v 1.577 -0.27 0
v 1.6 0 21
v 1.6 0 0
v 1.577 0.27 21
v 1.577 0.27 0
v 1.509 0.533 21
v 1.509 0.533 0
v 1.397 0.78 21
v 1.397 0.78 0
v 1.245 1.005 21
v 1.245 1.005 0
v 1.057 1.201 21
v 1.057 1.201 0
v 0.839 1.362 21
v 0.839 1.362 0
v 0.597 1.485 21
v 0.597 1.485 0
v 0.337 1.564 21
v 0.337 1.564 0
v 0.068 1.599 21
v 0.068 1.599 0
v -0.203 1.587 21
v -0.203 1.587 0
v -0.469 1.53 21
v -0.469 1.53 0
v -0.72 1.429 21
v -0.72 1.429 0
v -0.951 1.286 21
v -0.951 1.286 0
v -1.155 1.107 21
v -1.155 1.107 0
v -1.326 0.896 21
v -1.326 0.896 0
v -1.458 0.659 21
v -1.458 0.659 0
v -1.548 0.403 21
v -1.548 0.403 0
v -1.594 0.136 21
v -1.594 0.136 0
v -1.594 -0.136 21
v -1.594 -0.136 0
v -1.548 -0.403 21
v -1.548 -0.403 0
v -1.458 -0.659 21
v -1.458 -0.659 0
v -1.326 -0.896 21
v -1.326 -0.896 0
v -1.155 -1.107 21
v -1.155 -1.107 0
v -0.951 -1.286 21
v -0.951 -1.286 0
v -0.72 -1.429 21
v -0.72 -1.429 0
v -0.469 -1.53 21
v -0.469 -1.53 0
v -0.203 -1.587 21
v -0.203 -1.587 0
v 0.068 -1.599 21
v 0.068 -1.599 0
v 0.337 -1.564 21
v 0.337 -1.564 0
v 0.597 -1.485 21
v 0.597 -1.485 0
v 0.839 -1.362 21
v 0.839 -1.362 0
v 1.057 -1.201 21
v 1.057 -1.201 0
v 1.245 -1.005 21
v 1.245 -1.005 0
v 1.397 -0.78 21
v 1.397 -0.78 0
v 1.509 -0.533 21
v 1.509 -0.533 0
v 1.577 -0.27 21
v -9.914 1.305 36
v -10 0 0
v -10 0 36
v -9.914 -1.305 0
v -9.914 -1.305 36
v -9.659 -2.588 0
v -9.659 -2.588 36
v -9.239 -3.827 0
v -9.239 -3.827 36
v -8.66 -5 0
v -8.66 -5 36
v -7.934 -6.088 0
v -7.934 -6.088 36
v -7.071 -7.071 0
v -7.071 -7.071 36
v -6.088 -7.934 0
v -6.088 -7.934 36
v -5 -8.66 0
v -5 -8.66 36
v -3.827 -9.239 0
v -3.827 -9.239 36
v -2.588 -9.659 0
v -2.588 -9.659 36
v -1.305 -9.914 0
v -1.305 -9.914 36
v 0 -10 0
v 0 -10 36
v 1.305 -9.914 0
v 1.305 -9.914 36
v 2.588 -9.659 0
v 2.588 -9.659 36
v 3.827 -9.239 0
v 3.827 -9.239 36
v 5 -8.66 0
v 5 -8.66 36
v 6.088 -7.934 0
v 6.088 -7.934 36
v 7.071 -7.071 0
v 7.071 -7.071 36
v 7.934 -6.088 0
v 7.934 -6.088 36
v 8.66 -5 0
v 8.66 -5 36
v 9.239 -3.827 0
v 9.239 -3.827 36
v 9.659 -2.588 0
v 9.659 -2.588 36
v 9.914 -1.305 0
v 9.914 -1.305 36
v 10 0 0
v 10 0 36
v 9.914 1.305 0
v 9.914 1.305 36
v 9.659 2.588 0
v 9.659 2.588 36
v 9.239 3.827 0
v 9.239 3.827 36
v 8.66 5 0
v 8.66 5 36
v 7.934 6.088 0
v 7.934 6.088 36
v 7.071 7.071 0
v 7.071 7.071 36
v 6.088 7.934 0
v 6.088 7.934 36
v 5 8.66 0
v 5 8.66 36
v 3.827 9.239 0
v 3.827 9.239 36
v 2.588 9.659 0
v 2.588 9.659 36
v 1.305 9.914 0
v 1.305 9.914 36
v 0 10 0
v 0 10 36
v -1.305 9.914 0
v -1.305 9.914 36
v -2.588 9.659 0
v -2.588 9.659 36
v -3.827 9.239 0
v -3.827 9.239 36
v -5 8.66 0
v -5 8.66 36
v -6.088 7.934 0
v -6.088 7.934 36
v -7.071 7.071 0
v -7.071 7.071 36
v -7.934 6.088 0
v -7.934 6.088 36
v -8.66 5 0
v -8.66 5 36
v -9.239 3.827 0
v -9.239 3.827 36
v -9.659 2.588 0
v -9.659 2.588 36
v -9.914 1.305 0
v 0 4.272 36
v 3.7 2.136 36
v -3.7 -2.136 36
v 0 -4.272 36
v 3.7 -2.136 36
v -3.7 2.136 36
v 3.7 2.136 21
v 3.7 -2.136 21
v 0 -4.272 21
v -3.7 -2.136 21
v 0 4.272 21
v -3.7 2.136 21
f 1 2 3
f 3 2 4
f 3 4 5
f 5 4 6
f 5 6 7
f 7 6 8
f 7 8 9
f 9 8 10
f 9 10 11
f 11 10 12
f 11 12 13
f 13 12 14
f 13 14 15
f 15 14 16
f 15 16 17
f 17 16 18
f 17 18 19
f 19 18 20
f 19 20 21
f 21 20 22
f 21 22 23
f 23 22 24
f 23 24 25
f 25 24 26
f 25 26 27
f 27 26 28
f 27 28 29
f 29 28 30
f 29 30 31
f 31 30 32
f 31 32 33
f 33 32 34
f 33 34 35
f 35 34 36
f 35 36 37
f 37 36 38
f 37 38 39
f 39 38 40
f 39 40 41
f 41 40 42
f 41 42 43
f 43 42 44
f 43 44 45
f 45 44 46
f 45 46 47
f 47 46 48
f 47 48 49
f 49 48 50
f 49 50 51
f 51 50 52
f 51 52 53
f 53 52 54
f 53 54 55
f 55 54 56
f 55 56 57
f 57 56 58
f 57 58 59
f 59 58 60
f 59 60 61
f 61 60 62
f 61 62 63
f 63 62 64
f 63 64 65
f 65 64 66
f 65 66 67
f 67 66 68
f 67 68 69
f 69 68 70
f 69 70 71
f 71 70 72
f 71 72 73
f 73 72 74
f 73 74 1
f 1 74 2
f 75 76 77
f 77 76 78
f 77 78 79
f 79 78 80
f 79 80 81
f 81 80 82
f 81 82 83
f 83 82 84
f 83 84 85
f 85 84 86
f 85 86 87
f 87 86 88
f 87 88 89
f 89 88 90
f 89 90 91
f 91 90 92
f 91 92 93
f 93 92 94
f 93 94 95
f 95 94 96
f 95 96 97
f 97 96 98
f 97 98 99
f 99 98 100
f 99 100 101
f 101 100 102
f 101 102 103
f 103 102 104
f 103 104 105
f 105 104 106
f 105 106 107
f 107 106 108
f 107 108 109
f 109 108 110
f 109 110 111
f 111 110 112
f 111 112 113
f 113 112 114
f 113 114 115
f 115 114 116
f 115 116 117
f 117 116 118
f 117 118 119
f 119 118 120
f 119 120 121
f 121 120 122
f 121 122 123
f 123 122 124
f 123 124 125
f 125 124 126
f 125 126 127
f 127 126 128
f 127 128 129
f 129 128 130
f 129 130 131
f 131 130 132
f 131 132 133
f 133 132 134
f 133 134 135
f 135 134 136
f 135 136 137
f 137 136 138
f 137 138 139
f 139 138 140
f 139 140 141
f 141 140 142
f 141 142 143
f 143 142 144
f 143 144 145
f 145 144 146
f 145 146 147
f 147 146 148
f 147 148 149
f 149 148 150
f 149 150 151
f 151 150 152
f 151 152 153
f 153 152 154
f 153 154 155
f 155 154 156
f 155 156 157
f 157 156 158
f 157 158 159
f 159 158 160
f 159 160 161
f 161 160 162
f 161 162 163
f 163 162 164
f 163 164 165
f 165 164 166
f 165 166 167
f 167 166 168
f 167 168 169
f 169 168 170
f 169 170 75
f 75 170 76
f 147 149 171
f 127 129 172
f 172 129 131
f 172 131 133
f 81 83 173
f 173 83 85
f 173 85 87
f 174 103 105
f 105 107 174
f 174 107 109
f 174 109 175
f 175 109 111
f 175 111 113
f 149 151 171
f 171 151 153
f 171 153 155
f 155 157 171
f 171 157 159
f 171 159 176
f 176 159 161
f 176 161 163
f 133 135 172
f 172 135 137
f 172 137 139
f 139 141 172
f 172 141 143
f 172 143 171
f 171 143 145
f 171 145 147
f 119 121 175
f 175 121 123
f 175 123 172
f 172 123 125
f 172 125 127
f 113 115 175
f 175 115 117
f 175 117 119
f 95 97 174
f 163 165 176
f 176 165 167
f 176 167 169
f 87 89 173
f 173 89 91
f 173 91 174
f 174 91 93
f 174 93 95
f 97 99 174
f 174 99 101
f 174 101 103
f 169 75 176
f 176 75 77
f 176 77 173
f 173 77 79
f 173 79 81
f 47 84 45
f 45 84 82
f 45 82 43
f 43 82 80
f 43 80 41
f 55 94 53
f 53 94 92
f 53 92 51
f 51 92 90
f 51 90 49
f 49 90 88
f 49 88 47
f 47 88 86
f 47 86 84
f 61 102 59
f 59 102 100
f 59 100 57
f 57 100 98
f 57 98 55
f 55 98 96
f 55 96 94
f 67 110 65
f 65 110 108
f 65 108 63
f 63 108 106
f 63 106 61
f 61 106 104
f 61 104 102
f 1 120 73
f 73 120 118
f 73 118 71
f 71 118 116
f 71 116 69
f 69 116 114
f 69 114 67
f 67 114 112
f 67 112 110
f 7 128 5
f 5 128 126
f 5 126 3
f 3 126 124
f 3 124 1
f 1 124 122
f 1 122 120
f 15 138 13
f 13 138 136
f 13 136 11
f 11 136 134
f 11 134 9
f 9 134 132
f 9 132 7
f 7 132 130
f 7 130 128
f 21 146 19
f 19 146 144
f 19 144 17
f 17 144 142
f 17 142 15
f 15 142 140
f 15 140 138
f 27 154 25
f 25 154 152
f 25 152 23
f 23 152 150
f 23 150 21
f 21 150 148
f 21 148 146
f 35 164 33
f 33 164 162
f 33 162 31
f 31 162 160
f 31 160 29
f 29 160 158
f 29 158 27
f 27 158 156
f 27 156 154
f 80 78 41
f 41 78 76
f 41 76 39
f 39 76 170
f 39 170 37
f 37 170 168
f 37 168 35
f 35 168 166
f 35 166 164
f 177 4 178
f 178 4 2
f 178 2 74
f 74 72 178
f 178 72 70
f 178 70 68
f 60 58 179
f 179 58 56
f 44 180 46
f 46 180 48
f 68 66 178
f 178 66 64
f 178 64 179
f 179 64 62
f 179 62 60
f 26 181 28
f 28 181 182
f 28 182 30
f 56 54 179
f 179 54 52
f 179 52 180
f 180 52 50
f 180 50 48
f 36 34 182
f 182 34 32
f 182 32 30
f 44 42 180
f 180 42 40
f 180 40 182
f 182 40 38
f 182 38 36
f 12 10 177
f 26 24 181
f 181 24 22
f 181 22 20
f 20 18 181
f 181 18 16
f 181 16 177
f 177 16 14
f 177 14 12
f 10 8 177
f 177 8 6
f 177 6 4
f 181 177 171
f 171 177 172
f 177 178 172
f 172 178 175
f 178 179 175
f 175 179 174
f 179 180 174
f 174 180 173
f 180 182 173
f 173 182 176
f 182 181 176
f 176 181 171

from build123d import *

# Parameters (mm, degrees)
ESBO_O2_R                = 10
RESSALTO_EXTRUS_O1_DEPTH = 36
CORTE_EXTRUS_O1_REACH    = 38
ESBO_O3_R                = 1.6
CORTE_EXTRUS_O2_DEPTH    = 15


with BuildPart() as part:
    # Esboço2 → Ressalto-extrusão1 (new body)
    with BuildSketch(Plane.XY):
        Circle(ESBO_O2_R)
    extrude(amount=RESSALTO_EXTRUS_O1_DEPTH)

    # Esboço3 → Corte-extrusão1 (cut, up to next)
    with BuildSketch(Plane.XY.offset(36), mode=Mode.PRIVATE) as corte_extrus_o1_sk1:
        Circle(ESBO_O3_R)
    corte_extrus_o1_tool1 = extrude(corte_extrus_o1_sk1.sketch, amount=-CORTE_EXTRUS_O1_REACH, mode=Mode.PRIVATE) & part.part
    add(corte_extrus_o1_tool1.solids().sort_by_distance((0, 0, 36))[0], mode=Mode.SUBTRACT)

    # Esboço4 → Corte-extrusão2 (cut)
    with BuildSketch(Plane.XY.offset(36)):
        Polygon((0, 4.272391992), (-3.7, 2.136195996), (-3.7, -2.136195996), (0, -4.272391992), (3.7, -2.136195996), (3.7, 2.136195996), align=None)
    extrude(amount=-CORTE_EXTRUS_O2_DEPTH, mode=Mode.SUBTRACT)


solid = part.part
